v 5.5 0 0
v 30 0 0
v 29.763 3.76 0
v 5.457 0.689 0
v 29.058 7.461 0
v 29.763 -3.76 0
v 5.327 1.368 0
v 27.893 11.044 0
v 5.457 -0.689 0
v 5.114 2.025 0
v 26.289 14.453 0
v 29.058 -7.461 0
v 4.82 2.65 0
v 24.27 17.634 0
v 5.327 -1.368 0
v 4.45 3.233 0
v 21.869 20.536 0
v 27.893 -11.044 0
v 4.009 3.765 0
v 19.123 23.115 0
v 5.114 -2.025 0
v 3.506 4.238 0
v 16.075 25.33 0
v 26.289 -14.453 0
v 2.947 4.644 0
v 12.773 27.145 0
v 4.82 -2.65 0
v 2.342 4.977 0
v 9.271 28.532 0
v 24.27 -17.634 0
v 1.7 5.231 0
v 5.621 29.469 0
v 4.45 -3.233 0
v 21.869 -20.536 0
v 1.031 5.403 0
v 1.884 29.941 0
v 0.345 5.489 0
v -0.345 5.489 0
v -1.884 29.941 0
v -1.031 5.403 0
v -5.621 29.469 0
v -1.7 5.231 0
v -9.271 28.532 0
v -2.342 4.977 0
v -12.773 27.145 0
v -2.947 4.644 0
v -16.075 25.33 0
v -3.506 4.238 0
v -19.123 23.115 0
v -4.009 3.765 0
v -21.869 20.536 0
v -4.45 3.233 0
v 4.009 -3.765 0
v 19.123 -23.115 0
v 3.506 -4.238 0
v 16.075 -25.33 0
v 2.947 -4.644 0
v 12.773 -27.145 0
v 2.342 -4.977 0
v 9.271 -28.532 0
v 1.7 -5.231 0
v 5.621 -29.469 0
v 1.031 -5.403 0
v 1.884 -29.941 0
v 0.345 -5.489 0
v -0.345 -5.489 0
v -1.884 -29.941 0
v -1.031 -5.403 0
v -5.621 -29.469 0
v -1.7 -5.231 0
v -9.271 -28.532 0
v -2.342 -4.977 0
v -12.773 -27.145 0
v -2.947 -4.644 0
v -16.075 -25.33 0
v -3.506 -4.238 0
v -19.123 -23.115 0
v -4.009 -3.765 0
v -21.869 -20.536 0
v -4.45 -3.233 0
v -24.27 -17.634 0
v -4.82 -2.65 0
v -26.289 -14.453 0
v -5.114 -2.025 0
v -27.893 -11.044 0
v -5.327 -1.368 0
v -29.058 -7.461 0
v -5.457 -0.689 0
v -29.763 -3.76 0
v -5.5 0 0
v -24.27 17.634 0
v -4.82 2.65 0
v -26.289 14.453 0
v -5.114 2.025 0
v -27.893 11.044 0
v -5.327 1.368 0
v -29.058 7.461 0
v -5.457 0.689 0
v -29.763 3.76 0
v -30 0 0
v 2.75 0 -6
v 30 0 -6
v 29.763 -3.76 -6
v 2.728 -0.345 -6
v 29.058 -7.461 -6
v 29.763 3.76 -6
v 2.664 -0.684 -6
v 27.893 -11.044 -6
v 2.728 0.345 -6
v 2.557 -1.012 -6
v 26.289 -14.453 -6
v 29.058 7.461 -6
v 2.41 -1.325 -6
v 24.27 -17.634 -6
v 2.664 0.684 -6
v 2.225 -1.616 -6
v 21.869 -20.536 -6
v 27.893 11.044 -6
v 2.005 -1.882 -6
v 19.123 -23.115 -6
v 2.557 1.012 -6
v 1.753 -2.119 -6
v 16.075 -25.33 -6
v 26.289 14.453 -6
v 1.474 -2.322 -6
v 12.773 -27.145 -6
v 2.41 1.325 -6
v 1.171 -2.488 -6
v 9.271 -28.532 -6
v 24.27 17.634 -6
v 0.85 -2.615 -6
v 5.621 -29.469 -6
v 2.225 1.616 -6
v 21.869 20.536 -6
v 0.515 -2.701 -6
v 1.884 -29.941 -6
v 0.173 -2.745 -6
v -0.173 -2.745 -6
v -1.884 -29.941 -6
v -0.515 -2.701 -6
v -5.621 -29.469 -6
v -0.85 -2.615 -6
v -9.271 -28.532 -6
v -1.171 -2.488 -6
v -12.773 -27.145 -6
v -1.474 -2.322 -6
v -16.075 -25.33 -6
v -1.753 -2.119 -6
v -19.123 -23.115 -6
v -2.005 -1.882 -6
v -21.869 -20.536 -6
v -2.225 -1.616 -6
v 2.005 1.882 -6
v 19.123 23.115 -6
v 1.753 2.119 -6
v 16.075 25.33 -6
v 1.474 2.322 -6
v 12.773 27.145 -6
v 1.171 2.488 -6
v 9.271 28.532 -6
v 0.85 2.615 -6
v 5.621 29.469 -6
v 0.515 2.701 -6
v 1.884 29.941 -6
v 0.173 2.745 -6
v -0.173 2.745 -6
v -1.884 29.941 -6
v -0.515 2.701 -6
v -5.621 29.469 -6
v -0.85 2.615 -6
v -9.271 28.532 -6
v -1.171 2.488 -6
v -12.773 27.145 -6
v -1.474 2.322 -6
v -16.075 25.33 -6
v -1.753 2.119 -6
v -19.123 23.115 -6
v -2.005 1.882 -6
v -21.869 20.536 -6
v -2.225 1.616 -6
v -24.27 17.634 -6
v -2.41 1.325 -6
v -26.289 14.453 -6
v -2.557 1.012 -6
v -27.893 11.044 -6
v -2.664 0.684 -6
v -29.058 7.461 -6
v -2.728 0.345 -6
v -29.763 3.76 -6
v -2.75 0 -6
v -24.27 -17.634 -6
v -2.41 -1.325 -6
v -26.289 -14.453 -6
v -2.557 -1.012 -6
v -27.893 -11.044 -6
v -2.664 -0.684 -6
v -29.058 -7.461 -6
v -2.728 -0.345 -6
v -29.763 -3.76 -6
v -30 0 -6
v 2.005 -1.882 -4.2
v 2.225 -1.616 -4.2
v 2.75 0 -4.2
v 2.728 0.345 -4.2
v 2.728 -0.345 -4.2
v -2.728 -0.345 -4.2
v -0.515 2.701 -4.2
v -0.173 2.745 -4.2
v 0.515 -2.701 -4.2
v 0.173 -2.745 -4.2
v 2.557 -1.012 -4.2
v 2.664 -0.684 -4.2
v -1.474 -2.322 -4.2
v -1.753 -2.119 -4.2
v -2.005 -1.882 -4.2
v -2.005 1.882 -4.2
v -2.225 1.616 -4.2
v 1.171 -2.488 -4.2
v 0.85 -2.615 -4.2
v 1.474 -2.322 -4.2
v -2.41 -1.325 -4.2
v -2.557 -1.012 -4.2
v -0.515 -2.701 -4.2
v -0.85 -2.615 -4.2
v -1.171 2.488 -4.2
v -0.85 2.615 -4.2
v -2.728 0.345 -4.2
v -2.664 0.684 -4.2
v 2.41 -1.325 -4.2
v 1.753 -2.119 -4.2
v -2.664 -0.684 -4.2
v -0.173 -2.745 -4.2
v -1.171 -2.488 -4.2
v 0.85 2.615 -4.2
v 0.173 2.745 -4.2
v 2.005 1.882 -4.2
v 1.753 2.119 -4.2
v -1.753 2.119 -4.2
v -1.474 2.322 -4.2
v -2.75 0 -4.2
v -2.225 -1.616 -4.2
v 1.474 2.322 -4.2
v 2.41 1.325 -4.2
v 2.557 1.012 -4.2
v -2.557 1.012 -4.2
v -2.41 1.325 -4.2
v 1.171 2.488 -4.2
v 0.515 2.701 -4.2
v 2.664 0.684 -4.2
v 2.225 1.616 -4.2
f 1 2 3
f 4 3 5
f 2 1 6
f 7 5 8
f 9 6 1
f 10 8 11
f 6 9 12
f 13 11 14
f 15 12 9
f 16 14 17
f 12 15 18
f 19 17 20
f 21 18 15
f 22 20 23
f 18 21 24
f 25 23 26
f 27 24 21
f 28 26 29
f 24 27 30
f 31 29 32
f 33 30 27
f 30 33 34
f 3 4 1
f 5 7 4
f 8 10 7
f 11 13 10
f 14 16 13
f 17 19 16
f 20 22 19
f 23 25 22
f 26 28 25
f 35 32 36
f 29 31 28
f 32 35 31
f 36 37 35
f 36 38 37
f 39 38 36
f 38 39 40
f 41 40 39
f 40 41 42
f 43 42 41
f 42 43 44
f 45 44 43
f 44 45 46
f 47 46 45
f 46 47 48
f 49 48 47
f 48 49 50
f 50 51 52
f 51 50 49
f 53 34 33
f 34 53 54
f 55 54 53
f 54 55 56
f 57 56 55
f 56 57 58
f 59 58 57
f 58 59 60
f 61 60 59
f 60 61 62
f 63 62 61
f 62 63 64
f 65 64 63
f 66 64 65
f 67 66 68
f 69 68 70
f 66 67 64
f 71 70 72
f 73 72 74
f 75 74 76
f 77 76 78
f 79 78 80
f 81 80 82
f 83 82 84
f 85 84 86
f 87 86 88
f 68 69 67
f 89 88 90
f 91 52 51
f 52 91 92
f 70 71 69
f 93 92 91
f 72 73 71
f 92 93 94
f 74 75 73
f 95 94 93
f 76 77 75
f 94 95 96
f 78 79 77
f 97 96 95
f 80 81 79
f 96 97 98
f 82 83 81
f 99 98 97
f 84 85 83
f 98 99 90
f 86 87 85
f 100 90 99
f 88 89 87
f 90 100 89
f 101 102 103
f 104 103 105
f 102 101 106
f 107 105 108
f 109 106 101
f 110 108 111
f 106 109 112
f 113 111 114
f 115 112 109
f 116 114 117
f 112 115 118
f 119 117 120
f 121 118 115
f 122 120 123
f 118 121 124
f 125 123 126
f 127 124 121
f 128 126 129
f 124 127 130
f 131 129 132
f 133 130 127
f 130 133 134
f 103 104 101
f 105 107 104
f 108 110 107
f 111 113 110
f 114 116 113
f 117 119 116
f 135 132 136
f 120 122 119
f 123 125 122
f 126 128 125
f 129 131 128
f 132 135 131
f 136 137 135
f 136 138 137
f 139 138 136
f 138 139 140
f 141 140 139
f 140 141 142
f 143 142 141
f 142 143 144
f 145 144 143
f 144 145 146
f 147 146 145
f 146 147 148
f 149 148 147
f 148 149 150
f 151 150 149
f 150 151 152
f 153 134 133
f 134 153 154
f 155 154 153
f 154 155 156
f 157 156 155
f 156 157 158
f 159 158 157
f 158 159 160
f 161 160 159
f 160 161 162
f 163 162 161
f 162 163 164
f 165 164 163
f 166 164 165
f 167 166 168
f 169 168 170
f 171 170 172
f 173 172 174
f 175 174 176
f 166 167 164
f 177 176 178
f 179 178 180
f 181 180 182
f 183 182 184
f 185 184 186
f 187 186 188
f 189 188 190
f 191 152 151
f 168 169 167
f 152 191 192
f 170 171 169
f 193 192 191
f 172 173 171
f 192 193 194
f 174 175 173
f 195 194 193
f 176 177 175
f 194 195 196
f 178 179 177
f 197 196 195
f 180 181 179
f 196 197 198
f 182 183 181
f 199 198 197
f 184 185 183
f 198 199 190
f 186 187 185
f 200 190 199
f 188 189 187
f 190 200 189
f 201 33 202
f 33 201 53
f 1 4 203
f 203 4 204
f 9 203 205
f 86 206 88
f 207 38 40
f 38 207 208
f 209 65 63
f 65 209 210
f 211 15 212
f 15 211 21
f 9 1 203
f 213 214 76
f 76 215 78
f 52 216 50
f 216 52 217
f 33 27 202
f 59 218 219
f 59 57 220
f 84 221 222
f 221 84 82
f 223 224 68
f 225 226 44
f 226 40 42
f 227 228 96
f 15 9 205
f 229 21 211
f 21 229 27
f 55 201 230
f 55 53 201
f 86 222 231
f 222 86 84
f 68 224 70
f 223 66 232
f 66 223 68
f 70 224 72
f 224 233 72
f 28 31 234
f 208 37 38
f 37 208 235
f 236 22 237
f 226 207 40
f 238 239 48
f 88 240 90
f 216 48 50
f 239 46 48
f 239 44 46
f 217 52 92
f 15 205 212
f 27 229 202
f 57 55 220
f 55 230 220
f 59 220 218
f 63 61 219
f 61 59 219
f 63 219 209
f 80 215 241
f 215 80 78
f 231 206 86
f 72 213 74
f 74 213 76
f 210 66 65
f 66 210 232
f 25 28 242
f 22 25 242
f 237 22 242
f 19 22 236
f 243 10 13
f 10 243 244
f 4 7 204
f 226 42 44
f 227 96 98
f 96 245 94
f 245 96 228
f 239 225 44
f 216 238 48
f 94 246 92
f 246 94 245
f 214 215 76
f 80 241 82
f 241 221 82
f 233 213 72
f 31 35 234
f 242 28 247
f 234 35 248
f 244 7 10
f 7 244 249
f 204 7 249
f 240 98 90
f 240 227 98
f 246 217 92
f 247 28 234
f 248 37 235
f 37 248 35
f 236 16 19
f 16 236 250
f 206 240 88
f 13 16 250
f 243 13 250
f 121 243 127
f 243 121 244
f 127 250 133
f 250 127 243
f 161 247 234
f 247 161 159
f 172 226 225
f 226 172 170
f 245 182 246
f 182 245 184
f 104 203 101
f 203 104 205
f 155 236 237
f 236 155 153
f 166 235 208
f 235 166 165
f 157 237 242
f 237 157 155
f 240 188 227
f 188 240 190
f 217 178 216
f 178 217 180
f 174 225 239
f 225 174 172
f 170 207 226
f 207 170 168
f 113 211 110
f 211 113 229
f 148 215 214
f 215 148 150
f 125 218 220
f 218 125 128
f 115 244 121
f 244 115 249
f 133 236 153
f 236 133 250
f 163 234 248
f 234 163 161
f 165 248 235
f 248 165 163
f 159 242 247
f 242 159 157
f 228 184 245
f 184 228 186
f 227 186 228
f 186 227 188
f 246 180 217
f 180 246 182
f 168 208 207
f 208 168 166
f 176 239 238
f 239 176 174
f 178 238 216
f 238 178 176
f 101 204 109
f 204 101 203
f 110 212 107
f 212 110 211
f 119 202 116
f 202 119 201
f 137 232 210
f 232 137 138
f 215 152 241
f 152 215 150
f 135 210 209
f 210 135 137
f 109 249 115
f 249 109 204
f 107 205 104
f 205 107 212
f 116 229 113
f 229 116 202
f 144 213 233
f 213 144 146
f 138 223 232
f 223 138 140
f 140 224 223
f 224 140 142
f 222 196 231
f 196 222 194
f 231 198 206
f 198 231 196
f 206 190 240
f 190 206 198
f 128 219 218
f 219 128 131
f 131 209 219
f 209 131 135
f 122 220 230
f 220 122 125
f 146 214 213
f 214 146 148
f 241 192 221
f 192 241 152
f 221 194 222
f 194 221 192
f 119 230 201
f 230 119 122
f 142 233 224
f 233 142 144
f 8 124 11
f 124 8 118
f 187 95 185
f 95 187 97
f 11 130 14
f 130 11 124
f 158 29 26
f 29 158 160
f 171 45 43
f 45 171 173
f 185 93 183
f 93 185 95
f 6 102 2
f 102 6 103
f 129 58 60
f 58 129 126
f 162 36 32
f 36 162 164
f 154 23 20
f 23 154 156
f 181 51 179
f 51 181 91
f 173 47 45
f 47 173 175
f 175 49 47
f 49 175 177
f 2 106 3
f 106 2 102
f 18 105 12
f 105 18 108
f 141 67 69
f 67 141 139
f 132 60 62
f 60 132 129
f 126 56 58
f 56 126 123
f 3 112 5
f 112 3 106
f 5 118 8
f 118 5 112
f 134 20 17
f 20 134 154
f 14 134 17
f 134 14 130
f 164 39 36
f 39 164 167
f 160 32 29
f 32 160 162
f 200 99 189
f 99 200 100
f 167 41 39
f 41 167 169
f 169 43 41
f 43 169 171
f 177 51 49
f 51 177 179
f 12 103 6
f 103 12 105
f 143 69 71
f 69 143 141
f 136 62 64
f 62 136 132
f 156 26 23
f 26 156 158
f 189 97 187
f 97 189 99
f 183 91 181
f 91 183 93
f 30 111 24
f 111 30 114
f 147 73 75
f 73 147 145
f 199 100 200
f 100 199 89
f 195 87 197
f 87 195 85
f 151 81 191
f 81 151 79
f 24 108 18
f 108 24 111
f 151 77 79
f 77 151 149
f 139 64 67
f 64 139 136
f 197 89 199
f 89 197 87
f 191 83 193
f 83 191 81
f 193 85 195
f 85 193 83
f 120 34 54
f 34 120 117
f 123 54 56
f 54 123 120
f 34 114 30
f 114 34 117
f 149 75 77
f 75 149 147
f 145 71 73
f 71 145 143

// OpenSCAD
$fn = 50;


difference() {
	union() {
		translate(v = [0, 0, -6.0000000000]) {
			cylinder(h = 6, r = 30.0000000000);
		}
	}
	union() {
		translate(v = [0, 0, 0]) {
			rotate(a = [0, 0, 0]) {
				difference() {
					union() {
						translate(v = [0, 0, -6.0000000000]) {
							cylinder(h = 6, r = 2.2500000000);
						}
						translate(v = [0, 0, -4.2000000000]) {
							cylinder(h = 4.2000000000, r1 = 2.7500000000, r2 = 5.5000000000);
						}
						translate(v = [0, 0, -6.0000000000]) {
							cylinder(h = 6, r = 2.7500000000);
						}
						translate(v = [0, 0, -6.0000000000]) {
							cylinder(h = 6, r = 2.2500000000);
						}
					}
					union();
				}
			}
		}
	}
}
